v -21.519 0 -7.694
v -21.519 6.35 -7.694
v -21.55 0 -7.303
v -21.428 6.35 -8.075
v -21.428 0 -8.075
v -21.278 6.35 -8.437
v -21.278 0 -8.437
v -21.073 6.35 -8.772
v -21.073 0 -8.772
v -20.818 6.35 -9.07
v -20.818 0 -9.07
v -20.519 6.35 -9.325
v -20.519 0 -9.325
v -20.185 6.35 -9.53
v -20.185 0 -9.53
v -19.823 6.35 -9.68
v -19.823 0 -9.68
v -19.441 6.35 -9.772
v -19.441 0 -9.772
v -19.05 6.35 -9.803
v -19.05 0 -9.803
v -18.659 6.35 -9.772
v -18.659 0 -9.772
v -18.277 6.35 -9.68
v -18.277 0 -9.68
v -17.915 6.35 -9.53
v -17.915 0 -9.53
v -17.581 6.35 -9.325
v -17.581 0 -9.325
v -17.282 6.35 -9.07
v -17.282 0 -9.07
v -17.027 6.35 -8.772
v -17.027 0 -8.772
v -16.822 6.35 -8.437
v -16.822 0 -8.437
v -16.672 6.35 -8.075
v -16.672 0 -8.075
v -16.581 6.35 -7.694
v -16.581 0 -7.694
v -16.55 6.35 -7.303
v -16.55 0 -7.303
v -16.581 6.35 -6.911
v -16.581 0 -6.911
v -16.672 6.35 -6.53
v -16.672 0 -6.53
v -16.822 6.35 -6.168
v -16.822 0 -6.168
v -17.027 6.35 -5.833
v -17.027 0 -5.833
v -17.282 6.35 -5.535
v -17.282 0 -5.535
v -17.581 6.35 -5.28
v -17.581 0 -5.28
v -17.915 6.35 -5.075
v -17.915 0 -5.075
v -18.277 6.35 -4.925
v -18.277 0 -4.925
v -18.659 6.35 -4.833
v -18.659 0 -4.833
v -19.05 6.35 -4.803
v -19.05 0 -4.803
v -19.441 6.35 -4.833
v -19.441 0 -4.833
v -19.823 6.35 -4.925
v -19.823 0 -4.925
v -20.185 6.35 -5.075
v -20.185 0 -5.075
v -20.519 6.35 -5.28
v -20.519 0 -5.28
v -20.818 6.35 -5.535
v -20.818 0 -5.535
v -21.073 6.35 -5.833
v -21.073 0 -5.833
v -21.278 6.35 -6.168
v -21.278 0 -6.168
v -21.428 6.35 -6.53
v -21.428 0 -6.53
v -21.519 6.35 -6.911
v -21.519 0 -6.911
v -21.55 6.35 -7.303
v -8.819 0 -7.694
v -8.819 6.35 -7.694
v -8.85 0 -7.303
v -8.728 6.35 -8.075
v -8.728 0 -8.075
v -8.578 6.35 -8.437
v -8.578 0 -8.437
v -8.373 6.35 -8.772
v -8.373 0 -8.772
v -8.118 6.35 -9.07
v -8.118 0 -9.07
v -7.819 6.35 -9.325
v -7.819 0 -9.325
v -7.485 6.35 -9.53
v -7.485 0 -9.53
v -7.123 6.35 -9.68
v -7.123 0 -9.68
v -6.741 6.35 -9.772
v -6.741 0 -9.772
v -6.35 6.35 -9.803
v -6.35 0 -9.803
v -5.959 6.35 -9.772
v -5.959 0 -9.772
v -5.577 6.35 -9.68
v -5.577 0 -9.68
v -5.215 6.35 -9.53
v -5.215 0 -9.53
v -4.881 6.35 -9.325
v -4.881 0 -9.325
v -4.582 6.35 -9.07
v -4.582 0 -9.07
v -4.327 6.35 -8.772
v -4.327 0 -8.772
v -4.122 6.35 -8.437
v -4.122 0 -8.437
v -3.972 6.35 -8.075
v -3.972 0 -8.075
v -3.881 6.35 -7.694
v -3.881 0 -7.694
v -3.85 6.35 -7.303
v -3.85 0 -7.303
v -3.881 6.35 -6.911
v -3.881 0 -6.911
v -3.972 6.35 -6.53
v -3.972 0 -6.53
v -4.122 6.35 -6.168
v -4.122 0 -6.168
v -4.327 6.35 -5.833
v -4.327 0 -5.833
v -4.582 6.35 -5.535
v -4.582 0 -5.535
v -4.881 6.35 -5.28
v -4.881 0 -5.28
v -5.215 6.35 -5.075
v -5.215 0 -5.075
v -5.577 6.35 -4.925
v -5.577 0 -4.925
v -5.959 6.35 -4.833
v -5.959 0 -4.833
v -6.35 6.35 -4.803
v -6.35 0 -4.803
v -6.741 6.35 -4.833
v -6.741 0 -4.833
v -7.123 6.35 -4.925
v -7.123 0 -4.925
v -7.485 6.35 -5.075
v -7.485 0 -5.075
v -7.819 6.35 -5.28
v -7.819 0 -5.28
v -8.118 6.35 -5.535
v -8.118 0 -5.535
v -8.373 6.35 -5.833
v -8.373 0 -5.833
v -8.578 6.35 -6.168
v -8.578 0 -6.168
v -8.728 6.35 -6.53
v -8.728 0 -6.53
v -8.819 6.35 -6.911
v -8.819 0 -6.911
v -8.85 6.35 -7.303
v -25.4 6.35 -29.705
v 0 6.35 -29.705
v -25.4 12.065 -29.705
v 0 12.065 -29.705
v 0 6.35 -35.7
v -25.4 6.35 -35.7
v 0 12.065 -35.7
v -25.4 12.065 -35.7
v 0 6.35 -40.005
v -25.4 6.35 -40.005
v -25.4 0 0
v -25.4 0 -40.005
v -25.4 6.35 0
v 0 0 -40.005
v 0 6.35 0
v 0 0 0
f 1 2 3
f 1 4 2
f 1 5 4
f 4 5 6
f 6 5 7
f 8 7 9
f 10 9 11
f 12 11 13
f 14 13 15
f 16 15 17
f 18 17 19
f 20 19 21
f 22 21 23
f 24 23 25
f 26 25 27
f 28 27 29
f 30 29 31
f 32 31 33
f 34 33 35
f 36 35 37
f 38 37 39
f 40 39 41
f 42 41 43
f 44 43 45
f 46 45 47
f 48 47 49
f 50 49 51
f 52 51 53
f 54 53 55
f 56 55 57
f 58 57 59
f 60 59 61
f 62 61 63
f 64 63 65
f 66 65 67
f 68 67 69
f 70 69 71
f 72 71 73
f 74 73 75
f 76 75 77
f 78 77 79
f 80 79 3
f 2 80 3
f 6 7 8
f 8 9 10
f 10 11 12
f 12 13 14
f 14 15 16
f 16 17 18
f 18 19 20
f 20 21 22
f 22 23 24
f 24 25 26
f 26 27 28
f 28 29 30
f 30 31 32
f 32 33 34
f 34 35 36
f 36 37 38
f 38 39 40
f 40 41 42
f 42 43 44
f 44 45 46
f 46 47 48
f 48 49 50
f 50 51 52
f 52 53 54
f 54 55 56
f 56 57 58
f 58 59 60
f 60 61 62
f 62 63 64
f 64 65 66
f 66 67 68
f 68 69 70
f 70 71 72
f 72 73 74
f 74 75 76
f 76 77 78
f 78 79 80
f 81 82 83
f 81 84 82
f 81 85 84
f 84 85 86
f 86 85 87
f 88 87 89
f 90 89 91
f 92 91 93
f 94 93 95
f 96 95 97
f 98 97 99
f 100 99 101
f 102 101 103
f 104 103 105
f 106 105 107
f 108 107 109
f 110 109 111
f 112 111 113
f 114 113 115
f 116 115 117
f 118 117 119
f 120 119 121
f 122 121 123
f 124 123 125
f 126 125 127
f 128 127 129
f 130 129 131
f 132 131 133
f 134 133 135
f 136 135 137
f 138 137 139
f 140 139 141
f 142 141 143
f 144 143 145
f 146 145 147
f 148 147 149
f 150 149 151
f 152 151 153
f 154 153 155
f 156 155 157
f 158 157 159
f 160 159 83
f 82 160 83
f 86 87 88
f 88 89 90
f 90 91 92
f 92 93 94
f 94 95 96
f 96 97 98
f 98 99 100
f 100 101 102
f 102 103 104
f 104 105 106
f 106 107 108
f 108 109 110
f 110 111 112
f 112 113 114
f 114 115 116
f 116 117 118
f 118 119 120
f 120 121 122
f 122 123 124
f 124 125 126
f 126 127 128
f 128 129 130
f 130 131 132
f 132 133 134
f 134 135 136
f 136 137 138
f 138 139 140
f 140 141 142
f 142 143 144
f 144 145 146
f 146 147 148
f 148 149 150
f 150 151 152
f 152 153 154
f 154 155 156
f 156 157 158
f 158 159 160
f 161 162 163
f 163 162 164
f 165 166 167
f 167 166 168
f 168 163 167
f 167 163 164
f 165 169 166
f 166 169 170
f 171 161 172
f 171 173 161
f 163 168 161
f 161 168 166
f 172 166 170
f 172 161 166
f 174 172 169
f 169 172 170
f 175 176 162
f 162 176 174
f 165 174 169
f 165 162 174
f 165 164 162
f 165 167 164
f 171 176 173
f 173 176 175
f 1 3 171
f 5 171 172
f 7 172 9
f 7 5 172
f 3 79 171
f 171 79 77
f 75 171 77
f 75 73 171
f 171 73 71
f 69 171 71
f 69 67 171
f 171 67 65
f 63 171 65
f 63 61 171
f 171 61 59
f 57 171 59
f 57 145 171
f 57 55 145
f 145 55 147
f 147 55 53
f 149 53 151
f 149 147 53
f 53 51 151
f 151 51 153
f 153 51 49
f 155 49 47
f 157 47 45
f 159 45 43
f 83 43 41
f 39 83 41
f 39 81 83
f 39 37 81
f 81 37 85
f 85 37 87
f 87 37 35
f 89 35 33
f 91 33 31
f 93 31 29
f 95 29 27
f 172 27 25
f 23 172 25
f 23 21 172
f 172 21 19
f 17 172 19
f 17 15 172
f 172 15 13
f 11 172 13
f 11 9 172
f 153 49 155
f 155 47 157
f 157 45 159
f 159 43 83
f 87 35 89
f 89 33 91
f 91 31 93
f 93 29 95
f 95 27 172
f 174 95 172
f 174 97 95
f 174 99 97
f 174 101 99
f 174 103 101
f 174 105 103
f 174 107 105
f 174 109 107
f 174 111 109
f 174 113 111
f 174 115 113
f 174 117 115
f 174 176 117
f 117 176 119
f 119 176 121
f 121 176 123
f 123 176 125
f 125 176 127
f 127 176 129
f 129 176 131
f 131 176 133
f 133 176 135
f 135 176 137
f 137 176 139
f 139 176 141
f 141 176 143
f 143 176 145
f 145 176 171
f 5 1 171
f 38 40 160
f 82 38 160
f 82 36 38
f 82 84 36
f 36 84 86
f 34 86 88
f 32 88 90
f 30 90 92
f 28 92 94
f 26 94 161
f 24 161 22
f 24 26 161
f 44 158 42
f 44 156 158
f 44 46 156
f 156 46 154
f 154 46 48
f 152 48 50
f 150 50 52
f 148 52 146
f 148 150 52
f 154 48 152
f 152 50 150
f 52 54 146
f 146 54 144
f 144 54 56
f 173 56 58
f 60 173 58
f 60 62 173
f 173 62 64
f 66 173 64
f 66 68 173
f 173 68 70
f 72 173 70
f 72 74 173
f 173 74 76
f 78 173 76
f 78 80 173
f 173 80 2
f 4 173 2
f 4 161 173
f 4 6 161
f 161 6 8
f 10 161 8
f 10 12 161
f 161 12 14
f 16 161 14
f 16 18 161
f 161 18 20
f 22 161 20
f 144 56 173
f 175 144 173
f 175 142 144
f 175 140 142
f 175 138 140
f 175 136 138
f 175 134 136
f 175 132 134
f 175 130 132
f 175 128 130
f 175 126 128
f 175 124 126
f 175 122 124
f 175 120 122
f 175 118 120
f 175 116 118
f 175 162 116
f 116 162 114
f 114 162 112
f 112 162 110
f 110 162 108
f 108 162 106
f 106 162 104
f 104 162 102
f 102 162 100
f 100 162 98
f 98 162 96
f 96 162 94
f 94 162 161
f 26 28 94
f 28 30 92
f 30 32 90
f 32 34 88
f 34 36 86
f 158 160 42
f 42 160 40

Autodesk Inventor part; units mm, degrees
ref_plane "YZ Plane" through (0, 0, 0) normal (1, 0, 0) x (0, 1, 0)
ref_plane "XZ Plane" through (0, 0, 0) normal (0, 1, 0) x (-1, 0, 0)
ref_plane "XY Plane" through (0, 0, 0) normal (0, 0, 1) x (1, 0, 0)
sketch "Sketch1" plane through (0, 0, 0) normal (0, 1, 0) x (-1, 0, 0)
  line L0 (0, 0) -> (25.4, 0)
  line L1 (25.4, 0) -> (25.4, -40.005)
  line L2 (25.4, -40.005) -> (0, -40.005)
  line L3 (0, -40.005) -> (0, 0)
  dimension "d0" = 40.005
  dimension "d1" = 25.4
extrude "Extrusion1" add sketch "Sketch1" along normal blind 6.35
sketch "Sketch2" plane through (0, 6.35, 0) normal (0, 1, 0) x (1, 0, 0)
  line L0 (-25.4, 40.005) -> (-25.4, 0) projected
  line L1 (0, 0) -> (0, 40.005) projected
  line L2 (-25.4, 35.6997) -> (0, 35.6997)
  line L3 (0, 35.6997) -> (0, 29.7053)
  line L4 (0, 29.7053) -> (-25.4, 29.7053)
  line L5 (-25.4, 29.7053) -> (-25.4, 35.6997)
  line L6 (-25.4, 32.7025) -> (0, 32.7025) construction
  line L7 (-25.4, 7.3025) -> (0, 7.3025)
  line L8 (-25.4, 0) -> (0, 0) projected
  line L9 (0, 40.005) -> (-25.4, 40.005) projected
  line L10 (-25.4, 29.7053) -> (0, 29.7053)
  line L11 (0, 29.7053) -> (0, 35.6997)
  line L12 (0, 35.6997) -> (-25.4, 35.6997)
  line L13 (-25.4, 35.6997) -> (-25.4, 29.7053)
  point P0 (-19.05, 7.3025)
  point P1 (-6.35, 7.3025)
  dimension "d4" = 5.9944
  dimension "d5" = 25.4
  dimension "d6" = 7.3025
  dimension "d7" = 40.005
  dimension "d8" = 12.7
  dimension "d9" = 25.4
  dimension "d10" = 6.35
extrude "Extrusion2" add sketch "Sketch2" along normal blind 5.715 contours L2 L1 L4 L0
hole "Hole1" at (-19.05, 6.35, -7.3025) at (-6.35, 6.35, -7.3025) direction (0, -1, 0) diameter 5 end through all
equation "\"d6\" = -0.5 * d5 + 0.5 * d7"
equation "\"d10\" = -0.5 * d8 + 0.5 * d9"
properties part number "slider v1"
